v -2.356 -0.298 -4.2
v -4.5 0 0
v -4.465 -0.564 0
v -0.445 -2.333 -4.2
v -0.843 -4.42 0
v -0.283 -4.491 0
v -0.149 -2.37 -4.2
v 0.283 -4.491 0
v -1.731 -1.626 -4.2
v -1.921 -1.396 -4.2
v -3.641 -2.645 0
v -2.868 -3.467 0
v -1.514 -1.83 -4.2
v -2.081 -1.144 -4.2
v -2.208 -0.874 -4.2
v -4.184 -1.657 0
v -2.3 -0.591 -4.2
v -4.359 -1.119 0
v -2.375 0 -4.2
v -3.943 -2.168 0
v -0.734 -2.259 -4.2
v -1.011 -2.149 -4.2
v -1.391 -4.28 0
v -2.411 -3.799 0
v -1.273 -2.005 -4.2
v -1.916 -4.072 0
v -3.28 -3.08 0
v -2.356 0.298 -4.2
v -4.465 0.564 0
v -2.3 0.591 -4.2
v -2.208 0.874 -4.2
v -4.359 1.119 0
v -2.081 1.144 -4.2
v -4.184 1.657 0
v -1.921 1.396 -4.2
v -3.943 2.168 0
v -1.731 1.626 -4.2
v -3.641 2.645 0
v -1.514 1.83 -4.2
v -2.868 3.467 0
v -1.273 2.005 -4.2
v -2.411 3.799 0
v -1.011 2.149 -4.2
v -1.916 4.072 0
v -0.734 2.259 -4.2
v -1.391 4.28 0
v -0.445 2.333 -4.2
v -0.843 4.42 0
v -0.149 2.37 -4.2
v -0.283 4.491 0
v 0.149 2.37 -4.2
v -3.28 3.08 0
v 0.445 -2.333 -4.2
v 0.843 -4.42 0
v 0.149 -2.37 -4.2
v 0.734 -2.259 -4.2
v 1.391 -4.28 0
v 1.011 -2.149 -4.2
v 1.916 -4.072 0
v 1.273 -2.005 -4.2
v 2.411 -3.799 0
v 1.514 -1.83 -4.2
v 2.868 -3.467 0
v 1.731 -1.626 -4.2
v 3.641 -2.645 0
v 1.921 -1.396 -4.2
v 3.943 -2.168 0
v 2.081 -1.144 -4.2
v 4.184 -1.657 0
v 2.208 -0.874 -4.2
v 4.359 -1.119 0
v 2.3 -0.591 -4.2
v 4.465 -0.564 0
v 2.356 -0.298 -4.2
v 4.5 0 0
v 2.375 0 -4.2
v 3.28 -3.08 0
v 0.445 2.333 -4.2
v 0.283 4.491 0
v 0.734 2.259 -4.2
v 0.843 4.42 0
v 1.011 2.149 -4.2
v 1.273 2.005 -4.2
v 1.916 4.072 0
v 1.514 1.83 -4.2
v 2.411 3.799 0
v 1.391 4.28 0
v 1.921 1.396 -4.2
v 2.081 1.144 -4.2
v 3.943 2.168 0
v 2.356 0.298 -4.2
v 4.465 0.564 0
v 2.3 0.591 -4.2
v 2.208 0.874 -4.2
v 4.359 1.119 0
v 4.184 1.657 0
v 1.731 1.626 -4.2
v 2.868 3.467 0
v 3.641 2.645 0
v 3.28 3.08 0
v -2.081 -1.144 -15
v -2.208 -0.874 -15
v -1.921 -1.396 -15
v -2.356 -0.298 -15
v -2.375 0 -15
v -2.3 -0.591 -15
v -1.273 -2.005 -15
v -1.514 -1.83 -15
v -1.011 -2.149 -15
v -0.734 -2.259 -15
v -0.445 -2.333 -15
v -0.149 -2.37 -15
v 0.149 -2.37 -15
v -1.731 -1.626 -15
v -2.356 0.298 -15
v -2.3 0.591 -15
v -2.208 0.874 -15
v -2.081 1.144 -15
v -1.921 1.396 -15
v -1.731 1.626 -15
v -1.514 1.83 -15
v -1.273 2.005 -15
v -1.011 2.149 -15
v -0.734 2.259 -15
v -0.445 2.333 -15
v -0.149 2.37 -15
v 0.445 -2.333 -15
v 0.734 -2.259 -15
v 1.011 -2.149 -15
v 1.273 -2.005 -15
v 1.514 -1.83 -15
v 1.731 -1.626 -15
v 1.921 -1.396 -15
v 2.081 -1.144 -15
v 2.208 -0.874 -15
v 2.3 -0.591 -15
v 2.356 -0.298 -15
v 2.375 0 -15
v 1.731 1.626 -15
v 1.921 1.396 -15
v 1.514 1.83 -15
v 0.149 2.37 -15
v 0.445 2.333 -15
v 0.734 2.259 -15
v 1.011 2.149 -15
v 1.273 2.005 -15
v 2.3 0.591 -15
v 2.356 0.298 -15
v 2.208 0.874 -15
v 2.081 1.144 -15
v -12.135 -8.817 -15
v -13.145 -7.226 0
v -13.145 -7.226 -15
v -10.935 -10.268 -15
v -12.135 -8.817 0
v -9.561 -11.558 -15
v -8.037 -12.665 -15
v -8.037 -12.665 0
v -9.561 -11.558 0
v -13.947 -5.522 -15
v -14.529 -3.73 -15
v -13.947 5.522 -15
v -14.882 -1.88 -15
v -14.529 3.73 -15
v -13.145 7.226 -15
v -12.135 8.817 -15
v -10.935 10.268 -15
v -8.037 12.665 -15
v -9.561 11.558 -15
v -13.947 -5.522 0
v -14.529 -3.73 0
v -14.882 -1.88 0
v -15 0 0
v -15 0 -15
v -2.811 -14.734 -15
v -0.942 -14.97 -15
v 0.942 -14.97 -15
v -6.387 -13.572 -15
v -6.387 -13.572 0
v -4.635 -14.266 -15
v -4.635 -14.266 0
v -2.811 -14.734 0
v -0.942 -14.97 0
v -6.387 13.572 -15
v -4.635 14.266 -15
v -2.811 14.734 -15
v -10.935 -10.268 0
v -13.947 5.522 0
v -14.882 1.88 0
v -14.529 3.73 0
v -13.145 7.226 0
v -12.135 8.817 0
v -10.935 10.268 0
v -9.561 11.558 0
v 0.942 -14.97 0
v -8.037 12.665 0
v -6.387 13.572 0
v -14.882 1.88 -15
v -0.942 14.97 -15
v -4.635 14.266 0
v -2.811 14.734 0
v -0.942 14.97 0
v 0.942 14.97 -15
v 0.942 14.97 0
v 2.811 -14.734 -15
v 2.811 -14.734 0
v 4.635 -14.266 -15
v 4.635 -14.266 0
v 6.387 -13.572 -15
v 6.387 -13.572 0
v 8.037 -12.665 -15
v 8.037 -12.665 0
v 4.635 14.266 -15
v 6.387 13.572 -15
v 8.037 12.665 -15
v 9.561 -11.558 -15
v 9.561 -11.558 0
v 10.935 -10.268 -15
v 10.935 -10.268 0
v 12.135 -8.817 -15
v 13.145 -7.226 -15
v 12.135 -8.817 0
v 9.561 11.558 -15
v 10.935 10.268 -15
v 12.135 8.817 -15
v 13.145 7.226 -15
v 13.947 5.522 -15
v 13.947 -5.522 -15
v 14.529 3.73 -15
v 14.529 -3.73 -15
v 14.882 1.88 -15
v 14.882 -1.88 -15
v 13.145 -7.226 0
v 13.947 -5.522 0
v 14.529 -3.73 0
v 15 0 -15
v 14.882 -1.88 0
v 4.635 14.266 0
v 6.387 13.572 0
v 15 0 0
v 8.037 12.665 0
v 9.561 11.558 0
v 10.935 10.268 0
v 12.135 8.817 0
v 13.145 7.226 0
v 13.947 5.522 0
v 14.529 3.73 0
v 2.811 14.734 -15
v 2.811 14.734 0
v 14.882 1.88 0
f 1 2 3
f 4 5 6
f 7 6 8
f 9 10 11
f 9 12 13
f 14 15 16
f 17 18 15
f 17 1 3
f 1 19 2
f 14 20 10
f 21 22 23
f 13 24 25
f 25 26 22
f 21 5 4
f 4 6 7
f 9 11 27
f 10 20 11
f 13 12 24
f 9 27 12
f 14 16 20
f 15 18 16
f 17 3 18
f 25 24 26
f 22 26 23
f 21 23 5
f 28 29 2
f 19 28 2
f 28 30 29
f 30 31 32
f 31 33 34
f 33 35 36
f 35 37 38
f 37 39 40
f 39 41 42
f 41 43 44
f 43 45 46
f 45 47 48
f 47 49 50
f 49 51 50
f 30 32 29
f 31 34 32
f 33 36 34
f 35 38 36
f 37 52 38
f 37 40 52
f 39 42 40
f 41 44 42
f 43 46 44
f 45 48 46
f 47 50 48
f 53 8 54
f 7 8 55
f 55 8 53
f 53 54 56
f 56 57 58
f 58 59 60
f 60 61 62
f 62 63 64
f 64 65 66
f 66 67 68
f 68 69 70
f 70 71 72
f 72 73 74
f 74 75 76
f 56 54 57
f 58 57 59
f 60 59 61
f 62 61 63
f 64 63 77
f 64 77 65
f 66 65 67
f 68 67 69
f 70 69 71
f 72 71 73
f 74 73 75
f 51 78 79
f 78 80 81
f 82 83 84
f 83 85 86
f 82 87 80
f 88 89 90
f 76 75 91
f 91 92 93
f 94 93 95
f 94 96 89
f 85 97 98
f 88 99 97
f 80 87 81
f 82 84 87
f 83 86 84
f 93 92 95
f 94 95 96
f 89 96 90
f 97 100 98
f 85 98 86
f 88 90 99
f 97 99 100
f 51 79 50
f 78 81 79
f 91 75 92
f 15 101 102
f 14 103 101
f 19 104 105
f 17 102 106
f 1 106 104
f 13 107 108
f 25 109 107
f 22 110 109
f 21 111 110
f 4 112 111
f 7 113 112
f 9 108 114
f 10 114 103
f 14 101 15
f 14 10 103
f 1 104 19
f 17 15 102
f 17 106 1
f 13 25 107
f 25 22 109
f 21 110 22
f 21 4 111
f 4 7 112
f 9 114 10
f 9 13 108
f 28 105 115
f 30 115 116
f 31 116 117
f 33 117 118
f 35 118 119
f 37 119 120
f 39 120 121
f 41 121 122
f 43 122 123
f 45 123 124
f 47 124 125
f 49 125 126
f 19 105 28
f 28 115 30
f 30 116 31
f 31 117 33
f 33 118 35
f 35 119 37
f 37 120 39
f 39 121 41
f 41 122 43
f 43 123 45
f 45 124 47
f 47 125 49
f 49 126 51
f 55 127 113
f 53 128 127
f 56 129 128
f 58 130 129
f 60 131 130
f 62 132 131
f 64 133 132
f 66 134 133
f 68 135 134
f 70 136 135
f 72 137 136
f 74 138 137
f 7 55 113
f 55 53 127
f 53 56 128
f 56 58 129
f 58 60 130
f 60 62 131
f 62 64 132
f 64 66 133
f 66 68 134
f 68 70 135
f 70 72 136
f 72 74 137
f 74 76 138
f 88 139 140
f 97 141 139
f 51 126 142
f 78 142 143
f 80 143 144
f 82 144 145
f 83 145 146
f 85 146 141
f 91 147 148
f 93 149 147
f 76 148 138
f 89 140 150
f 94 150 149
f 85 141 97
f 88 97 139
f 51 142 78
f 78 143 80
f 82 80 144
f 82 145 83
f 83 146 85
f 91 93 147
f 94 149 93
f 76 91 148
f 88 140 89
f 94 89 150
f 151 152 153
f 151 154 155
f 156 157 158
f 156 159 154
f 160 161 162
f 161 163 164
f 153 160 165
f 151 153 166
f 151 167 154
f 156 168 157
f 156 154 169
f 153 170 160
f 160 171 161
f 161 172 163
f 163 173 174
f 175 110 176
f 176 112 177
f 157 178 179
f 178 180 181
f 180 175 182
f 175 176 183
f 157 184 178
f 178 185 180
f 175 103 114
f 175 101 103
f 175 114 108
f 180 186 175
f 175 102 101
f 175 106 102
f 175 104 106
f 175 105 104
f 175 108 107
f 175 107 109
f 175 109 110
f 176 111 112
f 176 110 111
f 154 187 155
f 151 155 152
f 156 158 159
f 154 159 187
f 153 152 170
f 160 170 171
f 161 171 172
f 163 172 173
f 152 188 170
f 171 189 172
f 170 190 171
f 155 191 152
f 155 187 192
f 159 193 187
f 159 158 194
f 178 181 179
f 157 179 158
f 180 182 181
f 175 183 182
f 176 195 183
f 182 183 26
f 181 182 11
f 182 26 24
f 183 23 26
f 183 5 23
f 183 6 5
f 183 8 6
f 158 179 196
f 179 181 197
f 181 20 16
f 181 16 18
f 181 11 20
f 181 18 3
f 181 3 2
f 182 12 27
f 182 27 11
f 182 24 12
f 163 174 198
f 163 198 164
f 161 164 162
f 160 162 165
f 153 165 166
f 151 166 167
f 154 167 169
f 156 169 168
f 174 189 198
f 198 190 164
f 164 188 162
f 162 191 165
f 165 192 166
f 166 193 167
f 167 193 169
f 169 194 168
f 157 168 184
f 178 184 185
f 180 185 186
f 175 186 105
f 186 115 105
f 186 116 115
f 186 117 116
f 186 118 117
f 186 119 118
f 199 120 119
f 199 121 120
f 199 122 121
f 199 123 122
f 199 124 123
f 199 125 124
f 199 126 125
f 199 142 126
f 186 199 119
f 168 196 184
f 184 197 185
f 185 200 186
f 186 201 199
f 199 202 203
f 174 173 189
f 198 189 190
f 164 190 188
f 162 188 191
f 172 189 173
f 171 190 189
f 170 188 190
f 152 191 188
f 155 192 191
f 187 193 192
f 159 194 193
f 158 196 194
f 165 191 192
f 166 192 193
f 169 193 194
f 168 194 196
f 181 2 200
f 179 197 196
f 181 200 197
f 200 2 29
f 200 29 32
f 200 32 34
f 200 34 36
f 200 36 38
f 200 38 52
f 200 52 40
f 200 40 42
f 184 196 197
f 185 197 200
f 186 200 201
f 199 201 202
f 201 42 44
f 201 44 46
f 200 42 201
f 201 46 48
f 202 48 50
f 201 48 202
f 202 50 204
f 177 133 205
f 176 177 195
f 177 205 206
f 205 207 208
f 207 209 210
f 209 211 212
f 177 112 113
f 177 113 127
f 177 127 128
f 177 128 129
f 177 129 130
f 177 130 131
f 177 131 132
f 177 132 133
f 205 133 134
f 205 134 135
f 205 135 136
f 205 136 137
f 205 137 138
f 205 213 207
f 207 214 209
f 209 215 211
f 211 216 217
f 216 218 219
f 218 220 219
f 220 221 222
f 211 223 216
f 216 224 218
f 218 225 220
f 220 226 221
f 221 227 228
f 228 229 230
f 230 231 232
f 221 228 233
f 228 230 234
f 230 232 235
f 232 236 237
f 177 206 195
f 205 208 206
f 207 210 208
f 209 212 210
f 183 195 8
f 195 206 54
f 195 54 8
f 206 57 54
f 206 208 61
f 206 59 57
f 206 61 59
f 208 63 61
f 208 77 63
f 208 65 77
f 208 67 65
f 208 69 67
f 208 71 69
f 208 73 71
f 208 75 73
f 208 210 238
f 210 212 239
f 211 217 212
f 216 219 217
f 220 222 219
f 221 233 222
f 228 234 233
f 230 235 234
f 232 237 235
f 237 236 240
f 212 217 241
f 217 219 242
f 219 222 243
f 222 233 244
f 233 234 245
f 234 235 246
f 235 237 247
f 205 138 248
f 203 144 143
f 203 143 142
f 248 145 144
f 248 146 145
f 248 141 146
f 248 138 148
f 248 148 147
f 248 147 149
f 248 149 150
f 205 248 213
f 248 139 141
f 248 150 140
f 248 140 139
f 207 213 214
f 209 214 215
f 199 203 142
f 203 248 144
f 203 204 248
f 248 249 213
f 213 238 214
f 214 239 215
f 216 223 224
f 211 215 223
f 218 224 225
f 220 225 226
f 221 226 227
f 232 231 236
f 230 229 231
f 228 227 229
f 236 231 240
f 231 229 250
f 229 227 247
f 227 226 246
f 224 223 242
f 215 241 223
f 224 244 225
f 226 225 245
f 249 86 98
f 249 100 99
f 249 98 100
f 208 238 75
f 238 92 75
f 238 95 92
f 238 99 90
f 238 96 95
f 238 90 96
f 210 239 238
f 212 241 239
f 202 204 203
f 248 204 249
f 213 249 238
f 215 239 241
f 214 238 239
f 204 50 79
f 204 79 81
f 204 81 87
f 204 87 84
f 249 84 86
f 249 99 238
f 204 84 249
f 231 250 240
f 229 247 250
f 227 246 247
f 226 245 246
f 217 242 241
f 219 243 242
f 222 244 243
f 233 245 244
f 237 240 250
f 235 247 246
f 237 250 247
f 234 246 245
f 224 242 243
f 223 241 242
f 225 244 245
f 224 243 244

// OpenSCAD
$fn = 50;


difference() {
	union() {
		translate(v = [0, 0, -15.0000000000]) {
			cylinder(h = 15, r = 15.0000000000);
		}
	}
	union() {
		translate(v = [0, 0, 0]) {
			rotate(a = [0, 0, 0]) {
				difference() {
					union() {
						translate(v = [0, 0, -18.0000000000]) {
							cylinder(h = 18, r = 2.2500000000);
						}
						translate(v = [0, 0, -4.2000000000]) {
							cylinder(h = 4.2000000000, r1 = 2.3750000000, r2 = 4.5000000000);
						}
						translate(v = [0, 0, -18.0000000000]) {
							cylinder(h = 18, r = 2.3750000000);
						}
						translate(v = [0, 0, -18.0000000000]) {
							cylinder(h = 18, r = 2.2500000000);
						}
					}
					union();
				}
			}
		}
	}
}
